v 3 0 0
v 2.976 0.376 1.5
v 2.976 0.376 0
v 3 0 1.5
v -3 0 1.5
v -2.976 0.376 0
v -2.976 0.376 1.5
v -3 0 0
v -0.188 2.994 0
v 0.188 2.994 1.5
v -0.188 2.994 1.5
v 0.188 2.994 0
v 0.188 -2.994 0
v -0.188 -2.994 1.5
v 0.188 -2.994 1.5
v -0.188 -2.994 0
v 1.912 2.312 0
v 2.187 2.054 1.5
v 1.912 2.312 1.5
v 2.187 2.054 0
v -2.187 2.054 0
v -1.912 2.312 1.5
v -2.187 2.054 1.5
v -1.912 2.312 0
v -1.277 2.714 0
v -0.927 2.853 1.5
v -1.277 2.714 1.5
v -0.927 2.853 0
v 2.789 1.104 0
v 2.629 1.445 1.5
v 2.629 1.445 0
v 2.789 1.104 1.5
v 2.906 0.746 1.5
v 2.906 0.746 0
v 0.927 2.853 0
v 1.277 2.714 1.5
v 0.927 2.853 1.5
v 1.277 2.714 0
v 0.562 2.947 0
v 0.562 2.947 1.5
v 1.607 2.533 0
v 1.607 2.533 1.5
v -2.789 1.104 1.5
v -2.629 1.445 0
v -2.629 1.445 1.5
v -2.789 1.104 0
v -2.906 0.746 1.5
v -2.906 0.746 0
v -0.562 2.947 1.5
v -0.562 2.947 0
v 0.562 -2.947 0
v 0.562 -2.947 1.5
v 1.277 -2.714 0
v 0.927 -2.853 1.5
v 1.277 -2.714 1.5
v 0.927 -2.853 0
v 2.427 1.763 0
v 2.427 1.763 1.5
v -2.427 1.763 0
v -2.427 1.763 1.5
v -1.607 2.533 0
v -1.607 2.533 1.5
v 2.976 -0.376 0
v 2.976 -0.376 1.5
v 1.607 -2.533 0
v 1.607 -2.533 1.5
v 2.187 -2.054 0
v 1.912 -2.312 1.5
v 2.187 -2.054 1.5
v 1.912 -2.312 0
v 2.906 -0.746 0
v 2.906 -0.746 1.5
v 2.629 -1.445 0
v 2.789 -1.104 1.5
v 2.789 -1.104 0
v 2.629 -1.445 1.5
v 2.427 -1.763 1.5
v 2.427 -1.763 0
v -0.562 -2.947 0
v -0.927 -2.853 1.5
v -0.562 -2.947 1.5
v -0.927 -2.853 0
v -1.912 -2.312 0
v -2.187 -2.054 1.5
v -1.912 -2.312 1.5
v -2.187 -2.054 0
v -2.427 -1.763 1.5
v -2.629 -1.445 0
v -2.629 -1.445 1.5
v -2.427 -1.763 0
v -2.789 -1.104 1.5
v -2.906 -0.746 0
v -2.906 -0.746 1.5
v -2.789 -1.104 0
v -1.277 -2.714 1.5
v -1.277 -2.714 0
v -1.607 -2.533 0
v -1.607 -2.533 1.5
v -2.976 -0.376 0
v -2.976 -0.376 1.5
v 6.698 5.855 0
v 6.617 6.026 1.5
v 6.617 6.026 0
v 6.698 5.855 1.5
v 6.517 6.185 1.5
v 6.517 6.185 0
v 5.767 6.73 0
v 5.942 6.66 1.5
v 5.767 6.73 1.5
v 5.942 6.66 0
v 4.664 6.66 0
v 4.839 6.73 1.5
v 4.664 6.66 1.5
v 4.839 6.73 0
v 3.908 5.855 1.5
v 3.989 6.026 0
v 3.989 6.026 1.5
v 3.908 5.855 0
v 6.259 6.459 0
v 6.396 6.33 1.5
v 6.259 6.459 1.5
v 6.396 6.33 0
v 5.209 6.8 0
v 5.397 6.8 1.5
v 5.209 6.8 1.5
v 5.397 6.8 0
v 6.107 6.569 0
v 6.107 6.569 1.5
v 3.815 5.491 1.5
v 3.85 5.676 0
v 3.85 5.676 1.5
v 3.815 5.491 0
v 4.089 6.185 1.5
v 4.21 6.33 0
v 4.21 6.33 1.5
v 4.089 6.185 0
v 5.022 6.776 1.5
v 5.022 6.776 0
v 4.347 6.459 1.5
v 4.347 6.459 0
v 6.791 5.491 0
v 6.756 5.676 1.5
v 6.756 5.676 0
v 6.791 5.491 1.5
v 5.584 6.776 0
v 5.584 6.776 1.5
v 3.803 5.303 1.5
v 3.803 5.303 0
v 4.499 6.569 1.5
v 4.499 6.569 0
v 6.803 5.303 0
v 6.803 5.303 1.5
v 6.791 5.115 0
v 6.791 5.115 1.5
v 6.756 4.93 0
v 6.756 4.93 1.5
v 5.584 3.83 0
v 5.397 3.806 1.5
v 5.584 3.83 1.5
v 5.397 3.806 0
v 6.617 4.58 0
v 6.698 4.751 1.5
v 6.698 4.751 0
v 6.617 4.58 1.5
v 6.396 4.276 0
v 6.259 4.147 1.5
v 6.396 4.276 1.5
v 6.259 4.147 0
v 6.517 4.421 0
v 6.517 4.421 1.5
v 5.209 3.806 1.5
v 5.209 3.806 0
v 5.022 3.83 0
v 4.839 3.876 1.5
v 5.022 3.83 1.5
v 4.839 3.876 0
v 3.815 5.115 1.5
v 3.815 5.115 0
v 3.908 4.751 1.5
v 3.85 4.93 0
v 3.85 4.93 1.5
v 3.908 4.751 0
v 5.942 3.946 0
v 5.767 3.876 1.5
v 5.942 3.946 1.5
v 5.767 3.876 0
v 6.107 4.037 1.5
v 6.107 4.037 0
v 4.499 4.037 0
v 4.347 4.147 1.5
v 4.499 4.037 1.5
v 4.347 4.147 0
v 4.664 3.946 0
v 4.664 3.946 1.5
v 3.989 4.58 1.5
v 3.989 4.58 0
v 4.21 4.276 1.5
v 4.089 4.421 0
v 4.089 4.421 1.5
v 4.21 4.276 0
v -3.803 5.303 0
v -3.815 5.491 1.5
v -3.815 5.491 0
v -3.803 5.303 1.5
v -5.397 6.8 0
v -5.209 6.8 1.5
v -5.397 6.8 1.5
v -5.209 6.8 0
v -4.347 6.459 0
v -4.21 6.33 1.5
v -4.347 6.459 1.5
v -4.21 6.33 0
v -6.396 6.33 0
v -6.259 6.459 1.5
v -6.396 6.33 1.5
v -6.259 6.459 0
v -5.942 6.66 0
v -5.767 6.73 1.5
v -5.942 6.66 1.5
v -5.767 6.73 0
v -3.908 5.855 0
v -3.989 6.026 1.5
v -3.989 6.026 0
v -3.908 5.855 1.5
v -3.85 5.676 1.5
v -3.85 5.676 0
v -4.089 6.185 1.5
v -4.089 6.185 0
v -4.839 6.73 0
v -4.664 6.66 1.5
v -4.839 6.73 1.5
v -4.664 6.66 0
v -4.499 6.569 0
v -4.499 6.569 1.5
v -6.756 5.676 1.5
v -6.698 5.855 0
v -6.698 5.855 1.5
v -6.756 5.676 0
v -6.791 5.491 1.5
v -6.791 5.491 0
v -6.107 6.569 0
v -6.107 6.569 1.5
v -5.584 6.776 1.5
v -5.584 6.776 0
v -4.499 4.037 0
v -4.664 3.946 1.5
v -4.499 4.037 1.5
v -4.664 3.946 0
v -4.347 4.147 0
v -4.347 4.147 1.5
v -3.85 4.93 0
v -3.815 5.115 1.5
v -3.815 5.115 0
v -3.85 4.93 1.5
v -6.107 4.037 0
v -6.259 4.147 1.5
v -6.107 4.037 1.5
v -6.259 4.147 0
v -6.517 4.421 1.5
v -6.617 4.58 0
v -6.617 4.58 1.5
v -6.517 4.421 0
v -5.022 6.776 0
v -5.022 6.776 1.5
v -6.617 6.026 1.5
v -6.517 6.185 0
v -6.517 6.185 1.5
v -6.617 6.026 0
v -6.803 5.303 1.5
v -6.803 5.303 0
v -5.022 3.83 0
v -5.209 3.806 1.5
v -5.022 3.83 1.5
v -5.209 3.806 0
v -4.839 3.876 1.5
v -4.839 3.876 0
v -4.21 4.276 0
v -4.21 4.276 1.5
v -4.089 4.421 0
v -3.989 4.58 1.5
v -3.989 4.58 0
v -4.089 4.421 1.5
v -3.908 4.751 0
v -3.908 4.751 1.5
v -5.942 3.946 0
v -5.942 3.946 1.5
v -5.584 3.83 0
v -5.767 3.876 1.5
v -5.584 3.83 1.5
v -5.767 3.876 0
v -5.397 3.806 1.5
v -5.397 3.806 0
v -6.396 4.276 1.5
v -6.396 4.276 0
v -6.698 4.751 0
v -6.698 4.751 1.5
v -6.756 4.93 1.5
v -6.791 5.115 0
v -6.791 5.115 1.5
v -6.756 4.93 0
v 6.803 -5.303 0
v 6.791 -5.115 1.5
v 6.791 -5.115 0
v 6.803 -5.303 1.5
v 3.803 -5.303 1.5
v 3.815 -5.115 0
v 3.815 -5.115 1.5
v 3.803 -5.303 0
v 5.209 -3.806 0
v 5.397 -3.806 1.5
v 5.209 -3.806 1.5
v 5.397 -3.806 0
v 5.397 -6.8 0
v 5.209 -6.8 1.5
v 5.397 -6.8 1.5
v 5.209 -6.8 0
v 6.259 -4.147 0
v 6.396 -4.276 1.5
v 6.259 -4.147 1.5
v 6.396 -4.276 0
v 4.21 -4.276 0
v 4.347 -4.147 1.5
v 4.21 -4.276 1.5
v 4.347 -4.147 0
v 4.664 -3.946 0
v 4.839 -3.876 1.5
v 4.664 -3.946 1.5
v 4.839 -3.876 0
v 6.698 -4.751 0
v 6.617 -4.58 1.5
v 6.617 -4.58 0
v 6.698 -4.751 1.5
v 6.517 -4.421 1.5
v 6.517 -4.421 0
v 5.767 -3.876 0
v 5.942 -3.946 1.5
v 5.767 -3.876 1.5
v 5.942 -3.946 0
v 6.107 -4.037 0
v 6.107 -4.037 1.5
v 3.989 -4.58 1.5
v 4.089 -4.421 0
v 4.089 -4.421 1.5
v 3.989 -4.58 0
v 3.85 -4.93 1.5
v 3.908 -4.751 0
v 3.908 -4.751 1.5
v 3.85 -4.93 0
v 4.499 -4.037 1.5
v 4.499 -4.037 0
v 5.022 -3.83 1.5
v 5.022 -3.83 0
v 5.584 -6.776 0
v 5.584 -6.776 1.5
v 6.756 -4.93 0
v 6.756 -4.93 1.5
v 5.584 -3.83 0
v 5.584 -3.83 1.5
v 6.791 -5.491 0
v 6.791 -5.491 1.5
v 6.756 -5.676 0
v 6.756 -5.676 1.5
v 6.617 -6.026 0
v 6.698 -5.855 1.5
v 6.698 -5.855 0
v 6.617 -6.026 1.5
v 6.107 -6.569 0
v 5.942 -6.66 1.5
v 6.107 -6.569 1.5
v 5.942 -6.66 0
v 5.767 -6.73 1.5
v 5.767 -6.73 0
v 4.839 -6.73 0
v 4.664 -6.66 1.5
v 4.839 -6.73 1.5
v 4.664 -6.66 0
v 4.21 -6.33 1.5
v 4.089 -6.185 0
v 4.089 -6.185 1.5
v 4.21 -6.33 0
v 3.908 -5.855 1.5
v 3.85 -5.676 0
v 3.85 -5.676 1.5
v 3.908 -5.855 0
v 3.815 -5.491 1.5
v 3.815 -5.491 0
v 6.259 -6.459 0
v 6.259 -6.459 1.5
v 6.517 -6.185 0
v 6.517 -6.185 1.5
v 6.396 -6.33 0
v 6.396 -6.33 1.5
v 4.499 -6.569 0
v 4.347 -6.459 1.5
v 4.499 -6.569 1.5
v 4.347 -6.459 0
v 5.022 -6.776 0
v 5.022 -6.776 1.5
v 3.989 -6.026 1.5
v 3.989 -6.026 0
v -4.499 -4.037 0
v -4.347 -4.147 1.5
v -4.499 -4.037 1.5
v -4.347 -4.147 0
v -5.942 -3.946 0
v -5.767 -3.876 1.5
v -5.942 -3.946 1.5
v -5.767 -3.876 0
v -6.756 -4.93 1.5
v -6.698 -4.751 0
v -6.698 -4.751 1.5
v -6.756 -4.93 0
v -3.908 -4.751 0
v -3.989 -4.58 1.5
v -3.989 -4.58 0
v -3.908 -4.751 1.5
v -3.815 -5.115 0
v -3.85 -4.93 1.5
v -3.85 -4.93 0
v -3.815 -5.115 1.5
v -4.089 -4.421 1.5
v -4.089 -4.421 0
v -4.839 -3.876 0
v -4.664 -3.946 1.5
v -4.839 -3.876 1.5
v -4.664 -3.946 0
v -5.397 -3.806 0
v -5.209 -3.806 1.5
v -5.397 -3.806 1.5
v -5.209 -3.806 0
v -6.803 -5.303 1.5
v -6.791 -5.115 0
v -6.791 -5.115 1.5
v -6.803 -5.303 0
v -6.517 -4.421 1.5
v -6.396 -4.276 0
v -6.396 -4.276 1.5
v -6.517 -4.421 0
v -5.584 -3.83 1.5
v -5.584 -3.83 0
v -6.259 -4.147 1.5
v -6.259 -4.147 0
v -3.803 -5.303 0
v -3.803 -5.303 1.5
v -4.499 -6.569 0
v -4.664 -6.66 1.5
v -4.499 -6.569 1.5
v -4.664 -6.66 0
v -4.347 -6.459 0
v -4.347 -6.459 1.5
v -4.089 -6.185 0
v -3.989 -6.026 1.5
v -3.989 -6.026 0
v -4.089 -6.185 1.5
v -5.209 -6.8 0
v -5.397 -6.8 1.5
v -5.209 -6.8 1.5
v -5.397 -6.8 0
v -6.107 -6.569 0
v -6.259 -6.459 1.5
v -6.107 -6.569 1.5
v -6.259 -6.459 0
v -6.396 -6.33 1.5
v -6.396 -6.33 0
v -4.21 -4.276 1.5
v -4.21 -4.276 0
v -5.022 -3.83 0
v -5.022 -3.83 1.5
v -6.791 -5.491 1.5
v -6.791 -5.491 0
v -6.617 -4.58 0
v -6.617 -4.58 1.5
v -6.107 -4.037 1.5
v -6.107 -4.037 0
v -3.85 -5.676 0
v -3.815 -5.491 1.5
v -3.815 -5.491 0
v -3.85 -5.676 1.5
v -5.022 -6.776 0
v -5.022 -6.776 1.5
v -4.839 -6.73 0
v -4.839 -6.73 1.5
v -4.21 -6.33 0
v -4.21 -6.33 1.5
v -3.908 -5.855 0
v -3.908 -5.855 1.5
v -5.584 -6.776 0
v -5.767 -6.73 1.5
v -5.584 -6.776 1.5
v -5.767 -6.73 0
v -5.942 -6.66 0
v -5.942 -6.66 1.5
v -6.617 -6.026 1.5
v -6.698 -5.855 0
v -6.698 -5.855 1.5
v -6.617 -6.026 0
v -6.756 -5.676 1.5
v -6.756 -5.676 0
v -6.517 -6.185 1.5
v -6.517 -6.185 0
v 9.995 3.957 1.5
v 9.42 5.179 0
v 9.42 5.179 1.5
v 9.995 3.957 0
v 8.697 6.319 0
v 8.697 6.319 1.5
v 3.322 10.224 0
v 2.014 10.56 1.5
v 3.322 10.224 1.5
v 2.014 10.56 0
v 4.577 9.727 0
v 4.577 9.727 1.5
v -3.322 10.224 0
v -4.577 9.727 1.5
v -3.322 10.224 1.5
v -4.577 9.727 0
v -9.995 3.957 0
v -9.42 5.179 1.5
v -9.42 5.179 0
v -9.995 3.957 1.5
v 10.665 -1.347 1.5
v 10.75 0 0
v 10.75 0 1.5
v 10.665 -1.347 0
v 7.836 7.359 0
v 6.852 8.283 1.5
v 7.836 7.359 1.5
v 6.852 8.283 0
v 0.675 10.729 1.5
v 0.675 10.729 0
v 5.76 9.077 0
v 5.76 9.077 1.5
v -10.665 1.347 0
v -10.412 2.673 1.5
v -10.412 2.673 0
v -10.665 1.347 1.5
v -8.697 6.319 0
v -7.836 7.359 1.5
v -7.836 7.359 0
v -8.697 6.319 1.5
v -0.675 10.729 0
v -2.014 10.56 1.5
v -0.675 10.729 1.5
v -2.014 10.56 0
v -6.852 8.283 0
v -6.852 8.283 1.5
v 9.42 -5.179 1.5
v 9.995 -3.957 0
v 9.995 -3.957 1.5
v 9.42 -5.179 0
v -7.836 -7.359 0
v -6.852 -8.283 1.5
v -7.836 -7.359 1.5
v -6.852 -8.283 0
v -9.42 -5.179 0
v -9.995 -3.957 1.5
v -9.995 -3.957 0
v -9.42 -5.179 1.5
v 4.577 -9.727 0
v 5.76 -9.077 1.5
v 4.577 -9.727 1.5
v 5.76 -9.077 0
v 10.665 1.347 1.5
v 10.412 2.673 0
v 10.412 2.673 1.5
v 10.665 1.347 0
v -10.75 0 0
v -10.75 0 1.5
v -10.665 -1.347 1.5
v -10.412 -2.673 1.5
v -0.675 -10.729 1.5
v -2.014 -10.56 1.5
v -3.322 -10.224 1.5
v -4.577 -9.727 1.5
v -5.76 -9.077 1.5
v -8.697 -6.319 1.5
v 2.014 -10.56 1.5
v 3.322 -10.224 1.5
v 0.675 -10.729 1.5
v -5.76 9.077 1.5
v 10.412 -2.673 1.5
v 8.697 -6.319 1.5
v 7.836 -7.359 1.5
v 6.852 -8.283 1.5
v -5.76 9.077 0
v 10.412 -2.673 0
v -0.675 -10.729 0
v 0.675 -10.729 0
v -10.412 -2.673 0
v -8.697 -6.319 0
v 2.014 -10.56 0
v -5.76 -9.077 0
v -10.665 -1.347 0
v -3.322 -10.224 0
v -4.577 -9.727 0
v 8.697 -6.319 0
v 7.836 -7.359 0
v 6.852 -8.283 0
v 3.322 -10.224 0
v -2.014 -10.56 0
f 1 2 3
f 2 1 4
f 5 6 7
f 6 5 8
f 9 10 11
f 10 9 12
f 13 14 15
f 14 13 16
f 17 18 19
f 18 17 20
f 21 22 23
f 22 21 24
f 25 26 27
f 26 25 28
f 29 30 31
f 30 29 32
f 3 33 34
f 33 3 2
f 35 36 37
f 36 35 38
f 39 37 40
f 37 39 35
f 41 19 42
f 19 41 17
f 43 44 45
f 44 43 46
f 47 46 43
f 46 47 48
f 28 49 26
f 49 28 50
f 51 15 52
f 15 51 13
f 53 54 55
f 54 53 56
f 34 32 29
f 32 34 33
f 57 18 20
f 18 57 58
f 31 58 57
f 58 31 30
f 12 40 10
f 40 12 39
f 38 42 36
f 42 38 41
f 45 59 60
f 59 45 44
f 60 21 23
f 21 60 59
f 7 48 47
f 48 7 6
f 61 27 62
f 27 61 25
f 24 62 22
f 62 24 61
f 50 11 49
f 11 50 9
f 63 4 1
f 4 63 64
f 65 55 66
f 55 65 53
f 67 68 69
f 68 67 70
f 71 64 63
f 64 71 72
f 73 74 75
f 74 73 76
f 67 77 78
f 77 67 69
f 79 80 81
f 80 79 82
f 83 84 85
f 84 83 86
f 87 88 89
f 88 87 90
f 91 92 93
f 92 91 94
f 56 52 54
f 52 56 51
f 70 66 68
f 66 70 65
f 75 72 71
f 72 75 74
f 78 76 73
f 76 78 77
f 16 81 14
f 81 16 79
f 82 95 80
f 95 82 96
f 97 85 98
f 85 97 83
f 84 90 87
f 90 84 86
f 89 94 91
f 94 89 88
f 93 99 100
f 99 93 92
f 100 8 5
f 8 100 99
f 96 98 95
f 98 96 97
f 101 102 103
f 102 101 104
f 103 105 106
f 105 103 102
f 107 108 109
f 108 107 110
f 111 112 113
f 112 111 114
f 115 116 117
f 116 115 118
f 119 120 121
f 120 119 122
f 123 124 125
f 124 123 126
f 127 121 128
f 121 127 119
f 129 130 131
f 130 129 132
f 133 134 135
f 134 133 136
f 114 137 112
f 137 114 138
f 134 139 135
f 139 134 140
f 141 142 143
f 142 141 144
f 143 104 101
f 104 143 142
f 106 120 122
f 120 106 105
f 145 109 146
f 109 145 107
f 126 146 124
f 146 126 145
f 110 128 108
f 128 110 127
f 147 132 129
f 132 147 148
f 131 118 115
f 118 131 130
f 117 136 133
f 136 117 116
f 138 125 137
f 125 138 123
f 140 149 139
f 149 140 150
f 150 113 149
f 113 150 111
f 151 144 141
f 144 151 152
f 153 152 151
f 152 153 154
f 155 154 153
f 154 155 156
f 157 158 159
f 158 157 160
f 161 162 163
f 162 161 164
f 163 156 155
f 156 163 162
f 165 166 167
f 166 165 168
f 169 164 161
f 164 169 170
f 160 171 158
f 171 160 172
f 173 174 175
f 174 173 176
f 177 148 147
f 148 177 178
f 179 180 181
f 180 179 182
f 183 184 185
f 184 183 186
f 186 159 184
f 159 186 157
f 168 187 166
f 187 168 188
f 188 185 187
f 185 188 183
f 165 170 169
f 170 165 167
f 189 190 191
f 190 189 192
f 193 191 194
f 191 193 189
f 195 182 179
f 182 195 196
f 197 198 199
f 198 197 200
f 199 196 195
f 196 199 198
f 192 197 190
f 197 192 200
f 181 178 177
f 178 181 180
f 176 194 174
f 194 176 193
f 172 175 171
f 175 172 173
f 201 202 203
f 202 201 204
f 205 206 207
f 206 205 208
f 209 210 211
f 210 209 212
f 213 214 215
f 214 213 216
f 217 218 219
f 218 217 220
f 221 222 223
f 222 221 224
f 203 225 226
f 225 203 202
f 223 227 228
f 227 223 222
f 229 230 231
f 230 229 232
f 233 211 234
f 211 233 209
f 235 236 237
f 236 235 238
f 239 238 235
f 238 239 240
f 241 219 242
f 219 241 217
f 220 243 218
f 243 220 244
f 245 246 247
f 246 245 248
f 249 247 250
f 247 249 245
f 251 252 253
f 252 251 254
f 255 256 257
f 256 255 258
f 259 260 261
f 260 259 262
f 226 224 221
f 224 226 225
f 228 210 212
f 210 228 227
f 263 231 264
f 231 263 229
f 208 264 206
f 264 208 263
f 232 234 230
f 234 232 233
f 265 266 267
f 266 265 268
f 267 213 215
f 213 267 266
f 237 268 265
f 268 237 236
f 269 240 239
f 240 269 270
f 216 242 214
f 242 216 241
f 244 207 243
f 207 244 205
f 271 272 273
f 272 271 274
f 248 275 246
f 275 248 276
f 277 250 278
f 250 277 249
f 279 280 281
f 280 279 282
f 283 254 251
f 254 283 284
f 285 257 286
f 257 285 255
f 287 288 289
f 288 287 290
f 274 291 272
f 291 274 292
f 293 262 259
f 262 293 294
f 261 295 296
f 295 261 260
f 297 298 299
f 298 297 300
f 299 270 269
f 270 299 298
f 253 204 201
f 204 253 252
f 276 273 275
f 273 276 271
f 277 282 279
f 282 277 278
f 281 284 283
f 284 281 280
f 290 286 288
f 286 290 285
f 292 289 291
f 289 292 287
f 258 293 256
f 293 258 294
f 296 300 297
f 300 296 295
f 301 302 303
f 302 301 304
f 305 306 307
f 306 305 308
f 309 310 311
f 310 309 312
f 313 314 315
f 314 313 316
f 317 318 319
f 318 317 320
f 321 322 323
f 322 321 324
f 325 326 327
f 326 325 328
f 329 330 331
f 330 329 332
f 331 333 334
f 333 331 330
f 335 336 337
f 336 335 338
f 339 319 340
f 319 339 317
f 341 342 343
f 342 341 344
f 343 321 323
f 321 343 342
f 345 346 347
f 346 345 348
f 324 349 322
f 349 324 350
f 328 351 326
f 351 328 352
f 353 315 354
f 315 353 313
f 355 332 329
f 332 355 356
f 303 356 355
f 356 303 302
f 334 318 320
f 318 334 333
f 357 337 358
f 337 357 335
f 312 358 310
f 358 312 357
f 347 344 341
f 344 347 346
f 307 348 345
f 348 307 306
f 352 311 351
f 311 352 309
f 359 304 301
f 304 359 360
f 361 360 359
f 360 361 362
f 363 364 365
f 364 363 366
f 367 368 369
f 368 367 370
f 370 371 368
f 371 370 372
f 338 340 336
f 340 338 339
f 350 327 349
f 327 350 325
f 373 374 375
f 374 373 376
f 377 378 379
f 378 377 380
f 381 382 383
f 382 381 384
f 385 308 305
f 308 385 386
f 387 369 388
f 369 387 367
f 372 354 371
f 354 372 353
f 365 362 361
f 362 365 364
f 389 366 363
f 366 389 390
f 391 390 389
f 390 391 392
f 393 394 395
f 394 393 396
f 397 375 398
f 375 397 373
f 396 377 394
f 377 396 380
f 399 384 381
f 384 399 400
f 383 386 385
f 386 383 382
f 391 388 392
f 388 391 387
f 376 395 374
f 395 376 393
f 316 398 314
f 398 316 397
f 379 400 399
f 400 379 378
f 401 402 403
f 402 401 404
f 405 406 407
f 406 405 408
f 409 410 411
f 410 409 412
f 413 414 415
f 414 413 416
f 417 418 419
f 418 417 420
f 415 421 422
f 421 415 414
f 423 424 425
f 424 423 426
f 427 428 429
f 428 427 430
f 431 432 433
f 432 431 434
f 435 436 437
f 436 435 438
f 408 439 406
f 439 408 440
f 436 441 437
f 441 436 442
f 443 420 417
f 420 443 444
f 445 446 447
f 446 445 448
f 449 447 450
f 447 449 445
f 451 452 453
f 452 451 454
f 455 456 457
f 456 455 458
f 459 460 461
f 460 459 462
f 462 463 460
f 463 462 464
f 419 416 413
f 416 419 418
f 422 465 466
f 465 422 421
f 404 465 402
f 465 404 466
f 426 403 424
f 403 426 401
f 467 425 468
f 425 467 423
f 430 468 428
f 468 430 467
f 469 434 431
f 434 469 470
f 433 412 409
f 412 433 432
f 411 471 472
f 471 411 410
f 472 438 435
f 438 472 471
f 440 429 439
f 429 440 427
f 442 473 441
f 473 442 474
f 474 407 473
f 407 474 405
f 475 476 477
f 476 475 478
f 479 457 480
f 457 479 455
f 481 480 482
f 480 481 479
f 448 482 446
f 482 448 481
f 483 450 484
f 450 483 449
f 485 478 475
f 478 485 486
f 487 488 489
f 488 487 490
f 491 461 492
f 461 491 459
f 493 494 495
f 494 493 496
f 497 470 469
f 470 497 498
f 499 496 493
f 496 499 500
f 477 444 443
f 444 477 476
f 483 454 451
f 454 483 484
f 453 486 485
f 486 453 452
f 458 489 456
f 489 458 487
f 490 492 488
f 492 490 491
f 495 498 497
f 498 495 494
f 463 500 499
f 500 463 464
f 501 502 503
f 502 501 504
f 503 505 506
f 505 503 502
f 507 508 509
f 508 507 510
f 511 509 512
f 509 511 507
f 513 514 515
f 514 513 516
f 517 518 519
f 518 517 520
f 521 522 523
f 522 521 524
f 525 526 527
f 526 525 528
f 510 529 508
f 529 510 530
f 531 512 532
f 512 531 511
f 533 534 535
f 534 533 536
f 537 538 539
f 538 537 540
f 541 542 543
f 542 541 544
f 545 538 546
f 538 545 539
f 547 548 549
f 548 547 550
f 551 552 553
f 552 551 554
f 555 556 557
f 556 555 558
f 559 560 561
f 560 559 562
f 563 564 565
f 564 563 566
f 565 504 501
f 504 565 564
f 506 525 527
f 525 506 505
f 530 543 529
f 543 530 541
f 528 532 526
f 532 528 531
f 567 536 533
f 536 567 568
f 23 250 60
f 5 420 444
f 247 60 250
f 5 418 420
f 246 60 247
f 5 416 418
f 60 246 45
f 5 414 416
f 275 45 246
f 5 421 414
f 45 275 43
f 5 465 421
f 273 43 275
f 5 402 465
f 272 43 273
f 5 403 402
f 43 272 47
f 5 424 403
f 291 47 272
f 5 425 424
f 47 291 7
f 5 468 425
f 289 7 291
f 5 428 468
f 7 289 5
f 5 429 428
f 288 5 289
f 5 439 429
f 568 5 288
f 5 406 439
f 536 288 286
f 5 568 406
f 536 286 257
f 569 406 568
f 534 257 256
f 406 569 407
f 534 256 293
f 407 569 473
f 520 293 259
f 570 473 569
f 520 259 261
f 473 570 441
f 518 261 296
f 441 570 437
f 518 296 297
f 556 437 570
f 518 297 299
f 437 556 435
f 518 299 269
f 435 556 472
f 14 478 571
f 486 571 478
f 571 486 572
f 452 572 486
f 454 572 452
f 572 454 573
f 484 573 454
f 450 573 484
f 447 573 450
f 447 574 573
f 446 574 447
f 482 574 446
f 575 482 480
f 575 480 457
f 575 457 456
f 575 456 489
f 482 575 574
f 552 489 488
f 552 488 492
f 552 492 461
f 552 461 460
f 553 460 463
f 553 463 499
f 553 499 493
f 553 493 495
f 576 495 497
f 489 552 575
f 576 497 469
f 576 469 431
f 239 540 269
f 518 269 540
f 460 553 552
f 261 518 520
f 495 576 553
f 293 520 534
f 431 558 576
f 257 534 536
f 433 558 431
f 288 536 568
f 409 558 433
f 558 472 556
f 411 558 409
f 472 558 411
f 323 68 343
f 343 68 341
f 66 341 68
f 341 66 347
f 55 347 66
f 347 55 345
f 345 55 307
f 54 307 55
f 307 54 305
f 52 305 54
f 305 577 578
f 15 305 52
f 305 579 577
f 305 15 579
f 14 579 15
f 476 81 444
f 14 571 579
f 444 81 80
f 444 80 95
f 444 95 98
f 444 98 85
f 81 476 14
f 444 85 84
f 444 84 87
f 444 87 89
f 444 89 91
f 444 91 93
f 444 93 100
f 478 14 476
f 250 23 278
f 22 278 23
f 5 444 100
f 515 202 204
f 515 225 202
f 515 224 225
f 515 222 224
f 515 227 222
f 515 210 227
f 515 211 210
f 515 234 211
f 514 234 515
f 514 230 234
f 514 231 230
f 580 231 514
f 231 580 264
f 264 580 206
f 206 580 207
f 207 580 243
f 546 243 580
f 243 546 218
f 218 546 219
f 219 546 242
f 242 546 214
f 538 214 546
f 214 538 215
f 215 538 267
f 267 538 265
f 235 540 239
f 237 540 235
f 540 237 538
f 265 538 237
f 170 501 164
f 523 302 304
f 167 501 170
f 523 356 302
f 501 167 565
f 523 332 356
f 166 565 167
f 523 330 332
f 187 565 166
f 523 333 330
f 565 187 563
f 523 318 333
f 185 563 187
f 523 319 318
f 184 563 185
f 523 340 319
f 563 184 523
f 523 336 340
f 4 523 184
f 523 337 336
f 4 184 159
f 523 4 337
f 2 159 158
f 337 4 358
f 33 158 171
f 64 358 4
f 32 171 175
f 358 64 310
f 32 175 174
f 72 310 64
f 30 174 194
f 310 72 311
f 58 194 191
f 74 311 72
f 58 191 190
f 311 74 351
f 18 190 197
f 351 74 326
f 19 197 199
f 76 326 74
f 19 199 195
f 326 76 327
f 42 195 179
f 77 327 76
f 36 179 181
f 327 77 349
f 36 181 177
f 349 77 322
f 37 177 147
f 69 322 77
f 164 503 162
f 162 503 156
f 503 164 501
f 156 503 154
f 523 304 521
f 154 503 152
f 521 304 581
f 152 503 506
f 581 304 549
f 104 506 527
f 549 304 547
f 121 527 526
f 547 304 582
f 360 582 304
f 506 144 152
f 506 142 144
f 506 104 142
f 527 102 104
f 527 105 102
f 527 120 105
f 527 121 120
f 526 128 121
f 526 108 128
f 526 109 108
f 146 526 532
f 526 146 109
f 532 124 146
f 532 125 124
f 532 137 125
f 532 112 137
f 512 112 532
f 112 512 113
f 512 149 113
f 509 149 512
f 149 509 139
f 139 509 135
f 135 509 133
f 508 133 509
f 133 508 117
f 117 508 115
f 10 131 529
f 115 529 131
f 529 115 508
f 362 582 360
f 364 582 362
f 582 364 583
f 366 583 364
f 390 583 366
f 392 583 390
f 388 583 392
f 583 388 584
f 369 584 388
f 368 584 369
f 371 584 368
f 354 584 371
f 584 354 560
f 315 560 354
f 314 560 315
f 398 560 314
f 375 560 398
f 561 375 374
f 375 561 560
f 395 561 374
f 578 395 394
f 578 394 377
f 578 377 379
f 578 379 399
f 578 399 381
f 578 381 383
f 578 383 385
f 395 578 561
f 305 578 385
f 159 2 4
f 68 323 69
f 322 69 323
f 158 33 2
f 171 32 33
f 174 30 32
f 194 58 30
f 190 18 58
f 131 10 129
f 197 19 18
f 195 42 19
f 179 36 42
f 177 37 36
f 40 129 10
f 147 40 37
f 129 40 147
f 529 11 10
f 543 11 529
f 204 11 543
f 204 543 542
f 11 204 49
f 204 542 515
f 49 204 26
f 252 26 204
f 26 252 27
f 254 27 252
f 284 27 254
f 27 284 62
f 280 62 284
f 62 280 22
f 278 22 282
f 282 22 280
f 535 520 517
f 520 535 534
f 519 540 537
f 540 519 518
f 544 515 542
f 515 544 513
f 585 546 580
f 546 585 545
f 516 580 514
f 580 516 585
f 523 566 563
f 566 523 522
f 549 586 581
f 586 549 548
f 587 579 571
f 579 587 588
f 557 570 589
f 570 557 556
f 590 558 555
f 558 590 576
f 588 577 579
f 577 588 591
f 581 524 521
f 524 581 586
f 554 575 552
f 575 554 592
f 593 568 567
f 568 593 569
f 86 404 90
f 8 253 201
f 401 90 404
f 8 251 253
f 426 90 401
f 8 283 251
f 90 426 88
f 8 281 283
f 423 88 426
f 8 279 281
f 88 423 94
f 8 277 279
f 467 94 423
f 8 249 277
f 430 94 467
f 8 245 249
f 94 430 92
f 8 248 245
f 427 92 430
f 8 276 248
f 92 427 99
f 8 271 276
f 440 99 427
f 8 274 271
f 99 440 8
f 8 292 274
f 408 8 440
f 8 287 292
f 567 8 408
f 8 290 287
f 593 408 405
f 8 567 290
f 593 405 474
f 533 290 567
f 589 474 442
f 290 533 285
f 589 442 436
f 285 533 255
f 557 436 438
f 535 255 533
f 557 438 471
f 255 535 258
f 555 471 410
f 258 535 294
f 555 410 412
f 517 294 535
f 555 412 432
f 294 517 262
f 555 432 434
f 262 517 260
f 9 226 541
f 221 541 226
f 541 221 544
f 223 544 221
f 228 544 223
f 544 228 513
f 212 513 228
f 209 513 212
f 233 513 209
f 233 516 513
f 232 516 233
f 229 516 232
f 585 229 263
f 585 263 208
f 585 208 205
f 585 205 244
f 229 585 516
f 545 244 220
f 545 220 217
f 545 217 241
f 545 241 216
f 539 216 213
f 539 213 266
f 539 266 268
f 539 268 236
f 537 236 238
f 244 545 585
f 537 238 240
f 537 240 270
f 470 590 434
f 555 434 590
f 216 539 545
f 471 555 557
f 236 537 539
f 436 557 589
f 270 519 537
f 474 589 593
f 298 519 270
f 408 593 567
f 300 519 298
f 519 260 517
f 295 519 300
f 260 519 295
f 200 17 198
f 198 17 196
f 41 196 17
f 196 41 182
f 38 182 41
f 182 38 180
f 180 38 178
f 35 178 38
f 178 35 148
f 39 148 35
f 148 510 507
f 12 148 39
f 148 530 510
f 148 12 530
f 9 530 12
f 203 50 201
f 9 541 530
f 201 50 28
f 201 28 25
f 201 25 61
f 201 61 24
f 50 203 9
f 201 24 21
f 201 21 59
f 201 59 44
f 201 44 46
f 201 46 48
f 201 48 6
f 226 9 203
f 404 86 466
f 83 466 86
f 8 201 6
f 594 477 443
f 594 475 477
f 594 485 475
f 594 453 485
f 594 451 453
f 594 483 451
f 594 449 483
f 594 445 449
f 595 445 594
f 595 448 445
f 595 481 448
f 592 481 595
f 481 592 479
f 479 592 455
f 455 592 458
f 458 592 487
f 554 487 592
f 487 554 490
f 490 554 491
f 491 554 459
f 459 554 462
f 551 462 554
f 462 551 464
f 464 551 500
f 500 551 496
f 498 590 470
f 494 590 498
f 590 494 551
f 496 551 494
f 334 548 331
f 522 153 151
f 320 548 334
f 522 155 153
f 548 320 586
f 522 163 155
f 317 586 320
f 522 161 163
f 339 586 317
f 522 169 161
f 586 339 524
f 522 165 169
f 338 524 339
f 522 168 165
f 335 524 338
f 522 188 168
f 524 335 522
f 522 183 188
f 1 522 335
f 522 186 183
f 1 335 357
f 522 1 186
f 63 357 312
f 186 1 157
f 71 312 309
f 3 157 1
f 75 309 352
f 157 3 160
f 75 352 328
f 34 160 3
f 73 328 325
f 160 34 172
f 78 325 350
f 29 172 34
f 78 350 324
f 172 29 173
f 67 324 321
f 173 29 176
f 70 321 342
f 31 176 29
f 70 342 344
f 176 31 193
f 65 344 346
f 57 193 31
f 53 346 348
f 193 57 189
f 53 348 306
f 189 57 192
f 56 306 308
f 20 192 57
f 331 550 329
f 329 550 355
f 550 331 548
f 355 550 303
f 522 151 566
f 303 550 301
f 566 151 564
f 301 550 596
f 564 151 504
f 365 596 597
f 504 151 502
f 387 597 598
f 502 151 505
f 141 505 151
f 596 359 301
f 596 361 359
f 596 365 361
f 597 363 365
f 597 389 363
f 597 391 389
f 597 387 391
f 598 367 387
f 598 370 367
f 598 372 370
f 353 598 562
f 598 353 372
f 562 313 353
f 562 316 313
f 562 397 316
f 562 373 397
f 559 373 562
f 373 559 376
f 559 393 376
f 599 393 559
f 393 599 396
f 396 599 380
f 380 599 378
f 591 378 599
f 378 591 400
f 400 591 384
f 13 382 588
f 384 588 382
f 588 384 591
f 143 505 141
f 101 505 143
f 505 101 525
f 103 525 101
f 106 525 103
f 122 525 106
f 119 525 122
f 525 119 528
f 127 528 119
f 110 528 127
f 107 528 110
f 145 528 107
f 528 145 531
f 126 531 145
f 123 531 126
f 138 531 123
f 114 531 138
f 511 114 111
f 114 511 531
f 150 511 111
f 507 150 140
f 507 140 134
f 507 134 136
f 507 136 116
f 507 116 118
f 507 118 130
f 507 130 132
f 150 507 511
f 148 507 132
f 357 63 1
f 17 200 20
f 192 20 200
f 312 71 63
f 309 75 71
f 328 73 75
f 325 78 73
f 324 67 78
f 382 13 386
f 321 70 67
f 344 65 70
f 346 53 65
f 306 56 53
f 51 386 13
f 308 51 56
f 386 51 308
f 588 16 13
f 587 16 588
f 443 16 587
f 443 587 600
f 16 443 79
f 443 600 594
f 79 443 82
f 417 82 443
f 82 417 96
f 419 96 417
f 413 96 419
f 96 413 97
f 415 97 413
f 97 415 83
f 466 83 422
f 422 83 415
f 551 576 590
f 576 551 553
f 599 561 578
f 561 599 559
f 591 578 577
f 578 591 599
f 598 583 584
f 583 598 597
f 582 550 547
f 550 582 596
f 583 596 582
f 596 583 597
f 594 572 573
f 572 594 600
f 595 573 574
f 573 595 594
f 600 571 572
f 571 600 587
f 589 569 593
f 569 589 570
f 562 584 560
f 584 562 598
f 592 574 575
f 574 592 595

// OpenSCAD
$fn = 50;


difference() {
	union() {
		*color(alpha = 1.0000000000, c = "gray") {
			translate(v = [0, 7, 0]) {
				linear_extrude(height = 1) {
					text(font = "Arial:style=Bold", halign = "center", size = 4.5000000000, text = "COMMENT circle main", valign = "center");
				}
			}
		}
		cylinder(h = 1.5000000000, r = 10.7500000000);
	}
	union() {
		*color(alpha = 1.0000000000, c = "gray") {
			translate(v = [0, 7, 0]) {
				linear_extrude(height = 1) {
					text(font = "Arial:style=Bold", halign = "center", size = 4.5000000000, text = "COMMENT holes main", valign = "center");
				}
			}
		}
		translate(v = [0.0000000000, 0.0000000000, -50.0000000000]) {
			cylinder(h = 100, r = 3.0000000000);
		}
		translate(v = [0.0000000000, 0.0000000000, -50.0000000000]) {
			cylinder(h = 100, r = 3.0000000000);
		}
		translate(v = [0.0000000000, 0.0000000000, -50.0000000000]) {
			cylinder(h = 100, r = 3.0000000000);
		}
		translate(v = [0.0000000000, 0.0000000000, -50.0000000000]) {
			cylinder(h = 100, r = 1.5000000000);
		}
		translate(v = [0.0000000000, 0.0000000000, -50.0000000000]) {
			cylinder(h = 100, r = 1.5000000000);
		}
		translate(v = [0.0000000000, 0.0000000000, -50.0000000000]) {
			cylinder(h = 100, r = 1.5000000000);
		}
		#translate(v = [5.3030000000, 5.3030000000, -50.0000000000]) {
			cylinder(h = 100, r = 1.5000000000);
		}
		#translate(v = [-5.3030000000, 5.3030000000, -50.0000000000]) {
			cylinder(h = 100, r = 1.5000000000);
		}
		#translate(v = [5.3030000000, -5.3030000000, -50.0000000000]) {
			cylinder(h = 100, r = 1.5000000000);
		}
		#translate(v = [-5.3030000000, -5.3030000000, -50.0000000000]) {
			cylinder(h = 100, r = 1.5000000000);
		}
	}
}
